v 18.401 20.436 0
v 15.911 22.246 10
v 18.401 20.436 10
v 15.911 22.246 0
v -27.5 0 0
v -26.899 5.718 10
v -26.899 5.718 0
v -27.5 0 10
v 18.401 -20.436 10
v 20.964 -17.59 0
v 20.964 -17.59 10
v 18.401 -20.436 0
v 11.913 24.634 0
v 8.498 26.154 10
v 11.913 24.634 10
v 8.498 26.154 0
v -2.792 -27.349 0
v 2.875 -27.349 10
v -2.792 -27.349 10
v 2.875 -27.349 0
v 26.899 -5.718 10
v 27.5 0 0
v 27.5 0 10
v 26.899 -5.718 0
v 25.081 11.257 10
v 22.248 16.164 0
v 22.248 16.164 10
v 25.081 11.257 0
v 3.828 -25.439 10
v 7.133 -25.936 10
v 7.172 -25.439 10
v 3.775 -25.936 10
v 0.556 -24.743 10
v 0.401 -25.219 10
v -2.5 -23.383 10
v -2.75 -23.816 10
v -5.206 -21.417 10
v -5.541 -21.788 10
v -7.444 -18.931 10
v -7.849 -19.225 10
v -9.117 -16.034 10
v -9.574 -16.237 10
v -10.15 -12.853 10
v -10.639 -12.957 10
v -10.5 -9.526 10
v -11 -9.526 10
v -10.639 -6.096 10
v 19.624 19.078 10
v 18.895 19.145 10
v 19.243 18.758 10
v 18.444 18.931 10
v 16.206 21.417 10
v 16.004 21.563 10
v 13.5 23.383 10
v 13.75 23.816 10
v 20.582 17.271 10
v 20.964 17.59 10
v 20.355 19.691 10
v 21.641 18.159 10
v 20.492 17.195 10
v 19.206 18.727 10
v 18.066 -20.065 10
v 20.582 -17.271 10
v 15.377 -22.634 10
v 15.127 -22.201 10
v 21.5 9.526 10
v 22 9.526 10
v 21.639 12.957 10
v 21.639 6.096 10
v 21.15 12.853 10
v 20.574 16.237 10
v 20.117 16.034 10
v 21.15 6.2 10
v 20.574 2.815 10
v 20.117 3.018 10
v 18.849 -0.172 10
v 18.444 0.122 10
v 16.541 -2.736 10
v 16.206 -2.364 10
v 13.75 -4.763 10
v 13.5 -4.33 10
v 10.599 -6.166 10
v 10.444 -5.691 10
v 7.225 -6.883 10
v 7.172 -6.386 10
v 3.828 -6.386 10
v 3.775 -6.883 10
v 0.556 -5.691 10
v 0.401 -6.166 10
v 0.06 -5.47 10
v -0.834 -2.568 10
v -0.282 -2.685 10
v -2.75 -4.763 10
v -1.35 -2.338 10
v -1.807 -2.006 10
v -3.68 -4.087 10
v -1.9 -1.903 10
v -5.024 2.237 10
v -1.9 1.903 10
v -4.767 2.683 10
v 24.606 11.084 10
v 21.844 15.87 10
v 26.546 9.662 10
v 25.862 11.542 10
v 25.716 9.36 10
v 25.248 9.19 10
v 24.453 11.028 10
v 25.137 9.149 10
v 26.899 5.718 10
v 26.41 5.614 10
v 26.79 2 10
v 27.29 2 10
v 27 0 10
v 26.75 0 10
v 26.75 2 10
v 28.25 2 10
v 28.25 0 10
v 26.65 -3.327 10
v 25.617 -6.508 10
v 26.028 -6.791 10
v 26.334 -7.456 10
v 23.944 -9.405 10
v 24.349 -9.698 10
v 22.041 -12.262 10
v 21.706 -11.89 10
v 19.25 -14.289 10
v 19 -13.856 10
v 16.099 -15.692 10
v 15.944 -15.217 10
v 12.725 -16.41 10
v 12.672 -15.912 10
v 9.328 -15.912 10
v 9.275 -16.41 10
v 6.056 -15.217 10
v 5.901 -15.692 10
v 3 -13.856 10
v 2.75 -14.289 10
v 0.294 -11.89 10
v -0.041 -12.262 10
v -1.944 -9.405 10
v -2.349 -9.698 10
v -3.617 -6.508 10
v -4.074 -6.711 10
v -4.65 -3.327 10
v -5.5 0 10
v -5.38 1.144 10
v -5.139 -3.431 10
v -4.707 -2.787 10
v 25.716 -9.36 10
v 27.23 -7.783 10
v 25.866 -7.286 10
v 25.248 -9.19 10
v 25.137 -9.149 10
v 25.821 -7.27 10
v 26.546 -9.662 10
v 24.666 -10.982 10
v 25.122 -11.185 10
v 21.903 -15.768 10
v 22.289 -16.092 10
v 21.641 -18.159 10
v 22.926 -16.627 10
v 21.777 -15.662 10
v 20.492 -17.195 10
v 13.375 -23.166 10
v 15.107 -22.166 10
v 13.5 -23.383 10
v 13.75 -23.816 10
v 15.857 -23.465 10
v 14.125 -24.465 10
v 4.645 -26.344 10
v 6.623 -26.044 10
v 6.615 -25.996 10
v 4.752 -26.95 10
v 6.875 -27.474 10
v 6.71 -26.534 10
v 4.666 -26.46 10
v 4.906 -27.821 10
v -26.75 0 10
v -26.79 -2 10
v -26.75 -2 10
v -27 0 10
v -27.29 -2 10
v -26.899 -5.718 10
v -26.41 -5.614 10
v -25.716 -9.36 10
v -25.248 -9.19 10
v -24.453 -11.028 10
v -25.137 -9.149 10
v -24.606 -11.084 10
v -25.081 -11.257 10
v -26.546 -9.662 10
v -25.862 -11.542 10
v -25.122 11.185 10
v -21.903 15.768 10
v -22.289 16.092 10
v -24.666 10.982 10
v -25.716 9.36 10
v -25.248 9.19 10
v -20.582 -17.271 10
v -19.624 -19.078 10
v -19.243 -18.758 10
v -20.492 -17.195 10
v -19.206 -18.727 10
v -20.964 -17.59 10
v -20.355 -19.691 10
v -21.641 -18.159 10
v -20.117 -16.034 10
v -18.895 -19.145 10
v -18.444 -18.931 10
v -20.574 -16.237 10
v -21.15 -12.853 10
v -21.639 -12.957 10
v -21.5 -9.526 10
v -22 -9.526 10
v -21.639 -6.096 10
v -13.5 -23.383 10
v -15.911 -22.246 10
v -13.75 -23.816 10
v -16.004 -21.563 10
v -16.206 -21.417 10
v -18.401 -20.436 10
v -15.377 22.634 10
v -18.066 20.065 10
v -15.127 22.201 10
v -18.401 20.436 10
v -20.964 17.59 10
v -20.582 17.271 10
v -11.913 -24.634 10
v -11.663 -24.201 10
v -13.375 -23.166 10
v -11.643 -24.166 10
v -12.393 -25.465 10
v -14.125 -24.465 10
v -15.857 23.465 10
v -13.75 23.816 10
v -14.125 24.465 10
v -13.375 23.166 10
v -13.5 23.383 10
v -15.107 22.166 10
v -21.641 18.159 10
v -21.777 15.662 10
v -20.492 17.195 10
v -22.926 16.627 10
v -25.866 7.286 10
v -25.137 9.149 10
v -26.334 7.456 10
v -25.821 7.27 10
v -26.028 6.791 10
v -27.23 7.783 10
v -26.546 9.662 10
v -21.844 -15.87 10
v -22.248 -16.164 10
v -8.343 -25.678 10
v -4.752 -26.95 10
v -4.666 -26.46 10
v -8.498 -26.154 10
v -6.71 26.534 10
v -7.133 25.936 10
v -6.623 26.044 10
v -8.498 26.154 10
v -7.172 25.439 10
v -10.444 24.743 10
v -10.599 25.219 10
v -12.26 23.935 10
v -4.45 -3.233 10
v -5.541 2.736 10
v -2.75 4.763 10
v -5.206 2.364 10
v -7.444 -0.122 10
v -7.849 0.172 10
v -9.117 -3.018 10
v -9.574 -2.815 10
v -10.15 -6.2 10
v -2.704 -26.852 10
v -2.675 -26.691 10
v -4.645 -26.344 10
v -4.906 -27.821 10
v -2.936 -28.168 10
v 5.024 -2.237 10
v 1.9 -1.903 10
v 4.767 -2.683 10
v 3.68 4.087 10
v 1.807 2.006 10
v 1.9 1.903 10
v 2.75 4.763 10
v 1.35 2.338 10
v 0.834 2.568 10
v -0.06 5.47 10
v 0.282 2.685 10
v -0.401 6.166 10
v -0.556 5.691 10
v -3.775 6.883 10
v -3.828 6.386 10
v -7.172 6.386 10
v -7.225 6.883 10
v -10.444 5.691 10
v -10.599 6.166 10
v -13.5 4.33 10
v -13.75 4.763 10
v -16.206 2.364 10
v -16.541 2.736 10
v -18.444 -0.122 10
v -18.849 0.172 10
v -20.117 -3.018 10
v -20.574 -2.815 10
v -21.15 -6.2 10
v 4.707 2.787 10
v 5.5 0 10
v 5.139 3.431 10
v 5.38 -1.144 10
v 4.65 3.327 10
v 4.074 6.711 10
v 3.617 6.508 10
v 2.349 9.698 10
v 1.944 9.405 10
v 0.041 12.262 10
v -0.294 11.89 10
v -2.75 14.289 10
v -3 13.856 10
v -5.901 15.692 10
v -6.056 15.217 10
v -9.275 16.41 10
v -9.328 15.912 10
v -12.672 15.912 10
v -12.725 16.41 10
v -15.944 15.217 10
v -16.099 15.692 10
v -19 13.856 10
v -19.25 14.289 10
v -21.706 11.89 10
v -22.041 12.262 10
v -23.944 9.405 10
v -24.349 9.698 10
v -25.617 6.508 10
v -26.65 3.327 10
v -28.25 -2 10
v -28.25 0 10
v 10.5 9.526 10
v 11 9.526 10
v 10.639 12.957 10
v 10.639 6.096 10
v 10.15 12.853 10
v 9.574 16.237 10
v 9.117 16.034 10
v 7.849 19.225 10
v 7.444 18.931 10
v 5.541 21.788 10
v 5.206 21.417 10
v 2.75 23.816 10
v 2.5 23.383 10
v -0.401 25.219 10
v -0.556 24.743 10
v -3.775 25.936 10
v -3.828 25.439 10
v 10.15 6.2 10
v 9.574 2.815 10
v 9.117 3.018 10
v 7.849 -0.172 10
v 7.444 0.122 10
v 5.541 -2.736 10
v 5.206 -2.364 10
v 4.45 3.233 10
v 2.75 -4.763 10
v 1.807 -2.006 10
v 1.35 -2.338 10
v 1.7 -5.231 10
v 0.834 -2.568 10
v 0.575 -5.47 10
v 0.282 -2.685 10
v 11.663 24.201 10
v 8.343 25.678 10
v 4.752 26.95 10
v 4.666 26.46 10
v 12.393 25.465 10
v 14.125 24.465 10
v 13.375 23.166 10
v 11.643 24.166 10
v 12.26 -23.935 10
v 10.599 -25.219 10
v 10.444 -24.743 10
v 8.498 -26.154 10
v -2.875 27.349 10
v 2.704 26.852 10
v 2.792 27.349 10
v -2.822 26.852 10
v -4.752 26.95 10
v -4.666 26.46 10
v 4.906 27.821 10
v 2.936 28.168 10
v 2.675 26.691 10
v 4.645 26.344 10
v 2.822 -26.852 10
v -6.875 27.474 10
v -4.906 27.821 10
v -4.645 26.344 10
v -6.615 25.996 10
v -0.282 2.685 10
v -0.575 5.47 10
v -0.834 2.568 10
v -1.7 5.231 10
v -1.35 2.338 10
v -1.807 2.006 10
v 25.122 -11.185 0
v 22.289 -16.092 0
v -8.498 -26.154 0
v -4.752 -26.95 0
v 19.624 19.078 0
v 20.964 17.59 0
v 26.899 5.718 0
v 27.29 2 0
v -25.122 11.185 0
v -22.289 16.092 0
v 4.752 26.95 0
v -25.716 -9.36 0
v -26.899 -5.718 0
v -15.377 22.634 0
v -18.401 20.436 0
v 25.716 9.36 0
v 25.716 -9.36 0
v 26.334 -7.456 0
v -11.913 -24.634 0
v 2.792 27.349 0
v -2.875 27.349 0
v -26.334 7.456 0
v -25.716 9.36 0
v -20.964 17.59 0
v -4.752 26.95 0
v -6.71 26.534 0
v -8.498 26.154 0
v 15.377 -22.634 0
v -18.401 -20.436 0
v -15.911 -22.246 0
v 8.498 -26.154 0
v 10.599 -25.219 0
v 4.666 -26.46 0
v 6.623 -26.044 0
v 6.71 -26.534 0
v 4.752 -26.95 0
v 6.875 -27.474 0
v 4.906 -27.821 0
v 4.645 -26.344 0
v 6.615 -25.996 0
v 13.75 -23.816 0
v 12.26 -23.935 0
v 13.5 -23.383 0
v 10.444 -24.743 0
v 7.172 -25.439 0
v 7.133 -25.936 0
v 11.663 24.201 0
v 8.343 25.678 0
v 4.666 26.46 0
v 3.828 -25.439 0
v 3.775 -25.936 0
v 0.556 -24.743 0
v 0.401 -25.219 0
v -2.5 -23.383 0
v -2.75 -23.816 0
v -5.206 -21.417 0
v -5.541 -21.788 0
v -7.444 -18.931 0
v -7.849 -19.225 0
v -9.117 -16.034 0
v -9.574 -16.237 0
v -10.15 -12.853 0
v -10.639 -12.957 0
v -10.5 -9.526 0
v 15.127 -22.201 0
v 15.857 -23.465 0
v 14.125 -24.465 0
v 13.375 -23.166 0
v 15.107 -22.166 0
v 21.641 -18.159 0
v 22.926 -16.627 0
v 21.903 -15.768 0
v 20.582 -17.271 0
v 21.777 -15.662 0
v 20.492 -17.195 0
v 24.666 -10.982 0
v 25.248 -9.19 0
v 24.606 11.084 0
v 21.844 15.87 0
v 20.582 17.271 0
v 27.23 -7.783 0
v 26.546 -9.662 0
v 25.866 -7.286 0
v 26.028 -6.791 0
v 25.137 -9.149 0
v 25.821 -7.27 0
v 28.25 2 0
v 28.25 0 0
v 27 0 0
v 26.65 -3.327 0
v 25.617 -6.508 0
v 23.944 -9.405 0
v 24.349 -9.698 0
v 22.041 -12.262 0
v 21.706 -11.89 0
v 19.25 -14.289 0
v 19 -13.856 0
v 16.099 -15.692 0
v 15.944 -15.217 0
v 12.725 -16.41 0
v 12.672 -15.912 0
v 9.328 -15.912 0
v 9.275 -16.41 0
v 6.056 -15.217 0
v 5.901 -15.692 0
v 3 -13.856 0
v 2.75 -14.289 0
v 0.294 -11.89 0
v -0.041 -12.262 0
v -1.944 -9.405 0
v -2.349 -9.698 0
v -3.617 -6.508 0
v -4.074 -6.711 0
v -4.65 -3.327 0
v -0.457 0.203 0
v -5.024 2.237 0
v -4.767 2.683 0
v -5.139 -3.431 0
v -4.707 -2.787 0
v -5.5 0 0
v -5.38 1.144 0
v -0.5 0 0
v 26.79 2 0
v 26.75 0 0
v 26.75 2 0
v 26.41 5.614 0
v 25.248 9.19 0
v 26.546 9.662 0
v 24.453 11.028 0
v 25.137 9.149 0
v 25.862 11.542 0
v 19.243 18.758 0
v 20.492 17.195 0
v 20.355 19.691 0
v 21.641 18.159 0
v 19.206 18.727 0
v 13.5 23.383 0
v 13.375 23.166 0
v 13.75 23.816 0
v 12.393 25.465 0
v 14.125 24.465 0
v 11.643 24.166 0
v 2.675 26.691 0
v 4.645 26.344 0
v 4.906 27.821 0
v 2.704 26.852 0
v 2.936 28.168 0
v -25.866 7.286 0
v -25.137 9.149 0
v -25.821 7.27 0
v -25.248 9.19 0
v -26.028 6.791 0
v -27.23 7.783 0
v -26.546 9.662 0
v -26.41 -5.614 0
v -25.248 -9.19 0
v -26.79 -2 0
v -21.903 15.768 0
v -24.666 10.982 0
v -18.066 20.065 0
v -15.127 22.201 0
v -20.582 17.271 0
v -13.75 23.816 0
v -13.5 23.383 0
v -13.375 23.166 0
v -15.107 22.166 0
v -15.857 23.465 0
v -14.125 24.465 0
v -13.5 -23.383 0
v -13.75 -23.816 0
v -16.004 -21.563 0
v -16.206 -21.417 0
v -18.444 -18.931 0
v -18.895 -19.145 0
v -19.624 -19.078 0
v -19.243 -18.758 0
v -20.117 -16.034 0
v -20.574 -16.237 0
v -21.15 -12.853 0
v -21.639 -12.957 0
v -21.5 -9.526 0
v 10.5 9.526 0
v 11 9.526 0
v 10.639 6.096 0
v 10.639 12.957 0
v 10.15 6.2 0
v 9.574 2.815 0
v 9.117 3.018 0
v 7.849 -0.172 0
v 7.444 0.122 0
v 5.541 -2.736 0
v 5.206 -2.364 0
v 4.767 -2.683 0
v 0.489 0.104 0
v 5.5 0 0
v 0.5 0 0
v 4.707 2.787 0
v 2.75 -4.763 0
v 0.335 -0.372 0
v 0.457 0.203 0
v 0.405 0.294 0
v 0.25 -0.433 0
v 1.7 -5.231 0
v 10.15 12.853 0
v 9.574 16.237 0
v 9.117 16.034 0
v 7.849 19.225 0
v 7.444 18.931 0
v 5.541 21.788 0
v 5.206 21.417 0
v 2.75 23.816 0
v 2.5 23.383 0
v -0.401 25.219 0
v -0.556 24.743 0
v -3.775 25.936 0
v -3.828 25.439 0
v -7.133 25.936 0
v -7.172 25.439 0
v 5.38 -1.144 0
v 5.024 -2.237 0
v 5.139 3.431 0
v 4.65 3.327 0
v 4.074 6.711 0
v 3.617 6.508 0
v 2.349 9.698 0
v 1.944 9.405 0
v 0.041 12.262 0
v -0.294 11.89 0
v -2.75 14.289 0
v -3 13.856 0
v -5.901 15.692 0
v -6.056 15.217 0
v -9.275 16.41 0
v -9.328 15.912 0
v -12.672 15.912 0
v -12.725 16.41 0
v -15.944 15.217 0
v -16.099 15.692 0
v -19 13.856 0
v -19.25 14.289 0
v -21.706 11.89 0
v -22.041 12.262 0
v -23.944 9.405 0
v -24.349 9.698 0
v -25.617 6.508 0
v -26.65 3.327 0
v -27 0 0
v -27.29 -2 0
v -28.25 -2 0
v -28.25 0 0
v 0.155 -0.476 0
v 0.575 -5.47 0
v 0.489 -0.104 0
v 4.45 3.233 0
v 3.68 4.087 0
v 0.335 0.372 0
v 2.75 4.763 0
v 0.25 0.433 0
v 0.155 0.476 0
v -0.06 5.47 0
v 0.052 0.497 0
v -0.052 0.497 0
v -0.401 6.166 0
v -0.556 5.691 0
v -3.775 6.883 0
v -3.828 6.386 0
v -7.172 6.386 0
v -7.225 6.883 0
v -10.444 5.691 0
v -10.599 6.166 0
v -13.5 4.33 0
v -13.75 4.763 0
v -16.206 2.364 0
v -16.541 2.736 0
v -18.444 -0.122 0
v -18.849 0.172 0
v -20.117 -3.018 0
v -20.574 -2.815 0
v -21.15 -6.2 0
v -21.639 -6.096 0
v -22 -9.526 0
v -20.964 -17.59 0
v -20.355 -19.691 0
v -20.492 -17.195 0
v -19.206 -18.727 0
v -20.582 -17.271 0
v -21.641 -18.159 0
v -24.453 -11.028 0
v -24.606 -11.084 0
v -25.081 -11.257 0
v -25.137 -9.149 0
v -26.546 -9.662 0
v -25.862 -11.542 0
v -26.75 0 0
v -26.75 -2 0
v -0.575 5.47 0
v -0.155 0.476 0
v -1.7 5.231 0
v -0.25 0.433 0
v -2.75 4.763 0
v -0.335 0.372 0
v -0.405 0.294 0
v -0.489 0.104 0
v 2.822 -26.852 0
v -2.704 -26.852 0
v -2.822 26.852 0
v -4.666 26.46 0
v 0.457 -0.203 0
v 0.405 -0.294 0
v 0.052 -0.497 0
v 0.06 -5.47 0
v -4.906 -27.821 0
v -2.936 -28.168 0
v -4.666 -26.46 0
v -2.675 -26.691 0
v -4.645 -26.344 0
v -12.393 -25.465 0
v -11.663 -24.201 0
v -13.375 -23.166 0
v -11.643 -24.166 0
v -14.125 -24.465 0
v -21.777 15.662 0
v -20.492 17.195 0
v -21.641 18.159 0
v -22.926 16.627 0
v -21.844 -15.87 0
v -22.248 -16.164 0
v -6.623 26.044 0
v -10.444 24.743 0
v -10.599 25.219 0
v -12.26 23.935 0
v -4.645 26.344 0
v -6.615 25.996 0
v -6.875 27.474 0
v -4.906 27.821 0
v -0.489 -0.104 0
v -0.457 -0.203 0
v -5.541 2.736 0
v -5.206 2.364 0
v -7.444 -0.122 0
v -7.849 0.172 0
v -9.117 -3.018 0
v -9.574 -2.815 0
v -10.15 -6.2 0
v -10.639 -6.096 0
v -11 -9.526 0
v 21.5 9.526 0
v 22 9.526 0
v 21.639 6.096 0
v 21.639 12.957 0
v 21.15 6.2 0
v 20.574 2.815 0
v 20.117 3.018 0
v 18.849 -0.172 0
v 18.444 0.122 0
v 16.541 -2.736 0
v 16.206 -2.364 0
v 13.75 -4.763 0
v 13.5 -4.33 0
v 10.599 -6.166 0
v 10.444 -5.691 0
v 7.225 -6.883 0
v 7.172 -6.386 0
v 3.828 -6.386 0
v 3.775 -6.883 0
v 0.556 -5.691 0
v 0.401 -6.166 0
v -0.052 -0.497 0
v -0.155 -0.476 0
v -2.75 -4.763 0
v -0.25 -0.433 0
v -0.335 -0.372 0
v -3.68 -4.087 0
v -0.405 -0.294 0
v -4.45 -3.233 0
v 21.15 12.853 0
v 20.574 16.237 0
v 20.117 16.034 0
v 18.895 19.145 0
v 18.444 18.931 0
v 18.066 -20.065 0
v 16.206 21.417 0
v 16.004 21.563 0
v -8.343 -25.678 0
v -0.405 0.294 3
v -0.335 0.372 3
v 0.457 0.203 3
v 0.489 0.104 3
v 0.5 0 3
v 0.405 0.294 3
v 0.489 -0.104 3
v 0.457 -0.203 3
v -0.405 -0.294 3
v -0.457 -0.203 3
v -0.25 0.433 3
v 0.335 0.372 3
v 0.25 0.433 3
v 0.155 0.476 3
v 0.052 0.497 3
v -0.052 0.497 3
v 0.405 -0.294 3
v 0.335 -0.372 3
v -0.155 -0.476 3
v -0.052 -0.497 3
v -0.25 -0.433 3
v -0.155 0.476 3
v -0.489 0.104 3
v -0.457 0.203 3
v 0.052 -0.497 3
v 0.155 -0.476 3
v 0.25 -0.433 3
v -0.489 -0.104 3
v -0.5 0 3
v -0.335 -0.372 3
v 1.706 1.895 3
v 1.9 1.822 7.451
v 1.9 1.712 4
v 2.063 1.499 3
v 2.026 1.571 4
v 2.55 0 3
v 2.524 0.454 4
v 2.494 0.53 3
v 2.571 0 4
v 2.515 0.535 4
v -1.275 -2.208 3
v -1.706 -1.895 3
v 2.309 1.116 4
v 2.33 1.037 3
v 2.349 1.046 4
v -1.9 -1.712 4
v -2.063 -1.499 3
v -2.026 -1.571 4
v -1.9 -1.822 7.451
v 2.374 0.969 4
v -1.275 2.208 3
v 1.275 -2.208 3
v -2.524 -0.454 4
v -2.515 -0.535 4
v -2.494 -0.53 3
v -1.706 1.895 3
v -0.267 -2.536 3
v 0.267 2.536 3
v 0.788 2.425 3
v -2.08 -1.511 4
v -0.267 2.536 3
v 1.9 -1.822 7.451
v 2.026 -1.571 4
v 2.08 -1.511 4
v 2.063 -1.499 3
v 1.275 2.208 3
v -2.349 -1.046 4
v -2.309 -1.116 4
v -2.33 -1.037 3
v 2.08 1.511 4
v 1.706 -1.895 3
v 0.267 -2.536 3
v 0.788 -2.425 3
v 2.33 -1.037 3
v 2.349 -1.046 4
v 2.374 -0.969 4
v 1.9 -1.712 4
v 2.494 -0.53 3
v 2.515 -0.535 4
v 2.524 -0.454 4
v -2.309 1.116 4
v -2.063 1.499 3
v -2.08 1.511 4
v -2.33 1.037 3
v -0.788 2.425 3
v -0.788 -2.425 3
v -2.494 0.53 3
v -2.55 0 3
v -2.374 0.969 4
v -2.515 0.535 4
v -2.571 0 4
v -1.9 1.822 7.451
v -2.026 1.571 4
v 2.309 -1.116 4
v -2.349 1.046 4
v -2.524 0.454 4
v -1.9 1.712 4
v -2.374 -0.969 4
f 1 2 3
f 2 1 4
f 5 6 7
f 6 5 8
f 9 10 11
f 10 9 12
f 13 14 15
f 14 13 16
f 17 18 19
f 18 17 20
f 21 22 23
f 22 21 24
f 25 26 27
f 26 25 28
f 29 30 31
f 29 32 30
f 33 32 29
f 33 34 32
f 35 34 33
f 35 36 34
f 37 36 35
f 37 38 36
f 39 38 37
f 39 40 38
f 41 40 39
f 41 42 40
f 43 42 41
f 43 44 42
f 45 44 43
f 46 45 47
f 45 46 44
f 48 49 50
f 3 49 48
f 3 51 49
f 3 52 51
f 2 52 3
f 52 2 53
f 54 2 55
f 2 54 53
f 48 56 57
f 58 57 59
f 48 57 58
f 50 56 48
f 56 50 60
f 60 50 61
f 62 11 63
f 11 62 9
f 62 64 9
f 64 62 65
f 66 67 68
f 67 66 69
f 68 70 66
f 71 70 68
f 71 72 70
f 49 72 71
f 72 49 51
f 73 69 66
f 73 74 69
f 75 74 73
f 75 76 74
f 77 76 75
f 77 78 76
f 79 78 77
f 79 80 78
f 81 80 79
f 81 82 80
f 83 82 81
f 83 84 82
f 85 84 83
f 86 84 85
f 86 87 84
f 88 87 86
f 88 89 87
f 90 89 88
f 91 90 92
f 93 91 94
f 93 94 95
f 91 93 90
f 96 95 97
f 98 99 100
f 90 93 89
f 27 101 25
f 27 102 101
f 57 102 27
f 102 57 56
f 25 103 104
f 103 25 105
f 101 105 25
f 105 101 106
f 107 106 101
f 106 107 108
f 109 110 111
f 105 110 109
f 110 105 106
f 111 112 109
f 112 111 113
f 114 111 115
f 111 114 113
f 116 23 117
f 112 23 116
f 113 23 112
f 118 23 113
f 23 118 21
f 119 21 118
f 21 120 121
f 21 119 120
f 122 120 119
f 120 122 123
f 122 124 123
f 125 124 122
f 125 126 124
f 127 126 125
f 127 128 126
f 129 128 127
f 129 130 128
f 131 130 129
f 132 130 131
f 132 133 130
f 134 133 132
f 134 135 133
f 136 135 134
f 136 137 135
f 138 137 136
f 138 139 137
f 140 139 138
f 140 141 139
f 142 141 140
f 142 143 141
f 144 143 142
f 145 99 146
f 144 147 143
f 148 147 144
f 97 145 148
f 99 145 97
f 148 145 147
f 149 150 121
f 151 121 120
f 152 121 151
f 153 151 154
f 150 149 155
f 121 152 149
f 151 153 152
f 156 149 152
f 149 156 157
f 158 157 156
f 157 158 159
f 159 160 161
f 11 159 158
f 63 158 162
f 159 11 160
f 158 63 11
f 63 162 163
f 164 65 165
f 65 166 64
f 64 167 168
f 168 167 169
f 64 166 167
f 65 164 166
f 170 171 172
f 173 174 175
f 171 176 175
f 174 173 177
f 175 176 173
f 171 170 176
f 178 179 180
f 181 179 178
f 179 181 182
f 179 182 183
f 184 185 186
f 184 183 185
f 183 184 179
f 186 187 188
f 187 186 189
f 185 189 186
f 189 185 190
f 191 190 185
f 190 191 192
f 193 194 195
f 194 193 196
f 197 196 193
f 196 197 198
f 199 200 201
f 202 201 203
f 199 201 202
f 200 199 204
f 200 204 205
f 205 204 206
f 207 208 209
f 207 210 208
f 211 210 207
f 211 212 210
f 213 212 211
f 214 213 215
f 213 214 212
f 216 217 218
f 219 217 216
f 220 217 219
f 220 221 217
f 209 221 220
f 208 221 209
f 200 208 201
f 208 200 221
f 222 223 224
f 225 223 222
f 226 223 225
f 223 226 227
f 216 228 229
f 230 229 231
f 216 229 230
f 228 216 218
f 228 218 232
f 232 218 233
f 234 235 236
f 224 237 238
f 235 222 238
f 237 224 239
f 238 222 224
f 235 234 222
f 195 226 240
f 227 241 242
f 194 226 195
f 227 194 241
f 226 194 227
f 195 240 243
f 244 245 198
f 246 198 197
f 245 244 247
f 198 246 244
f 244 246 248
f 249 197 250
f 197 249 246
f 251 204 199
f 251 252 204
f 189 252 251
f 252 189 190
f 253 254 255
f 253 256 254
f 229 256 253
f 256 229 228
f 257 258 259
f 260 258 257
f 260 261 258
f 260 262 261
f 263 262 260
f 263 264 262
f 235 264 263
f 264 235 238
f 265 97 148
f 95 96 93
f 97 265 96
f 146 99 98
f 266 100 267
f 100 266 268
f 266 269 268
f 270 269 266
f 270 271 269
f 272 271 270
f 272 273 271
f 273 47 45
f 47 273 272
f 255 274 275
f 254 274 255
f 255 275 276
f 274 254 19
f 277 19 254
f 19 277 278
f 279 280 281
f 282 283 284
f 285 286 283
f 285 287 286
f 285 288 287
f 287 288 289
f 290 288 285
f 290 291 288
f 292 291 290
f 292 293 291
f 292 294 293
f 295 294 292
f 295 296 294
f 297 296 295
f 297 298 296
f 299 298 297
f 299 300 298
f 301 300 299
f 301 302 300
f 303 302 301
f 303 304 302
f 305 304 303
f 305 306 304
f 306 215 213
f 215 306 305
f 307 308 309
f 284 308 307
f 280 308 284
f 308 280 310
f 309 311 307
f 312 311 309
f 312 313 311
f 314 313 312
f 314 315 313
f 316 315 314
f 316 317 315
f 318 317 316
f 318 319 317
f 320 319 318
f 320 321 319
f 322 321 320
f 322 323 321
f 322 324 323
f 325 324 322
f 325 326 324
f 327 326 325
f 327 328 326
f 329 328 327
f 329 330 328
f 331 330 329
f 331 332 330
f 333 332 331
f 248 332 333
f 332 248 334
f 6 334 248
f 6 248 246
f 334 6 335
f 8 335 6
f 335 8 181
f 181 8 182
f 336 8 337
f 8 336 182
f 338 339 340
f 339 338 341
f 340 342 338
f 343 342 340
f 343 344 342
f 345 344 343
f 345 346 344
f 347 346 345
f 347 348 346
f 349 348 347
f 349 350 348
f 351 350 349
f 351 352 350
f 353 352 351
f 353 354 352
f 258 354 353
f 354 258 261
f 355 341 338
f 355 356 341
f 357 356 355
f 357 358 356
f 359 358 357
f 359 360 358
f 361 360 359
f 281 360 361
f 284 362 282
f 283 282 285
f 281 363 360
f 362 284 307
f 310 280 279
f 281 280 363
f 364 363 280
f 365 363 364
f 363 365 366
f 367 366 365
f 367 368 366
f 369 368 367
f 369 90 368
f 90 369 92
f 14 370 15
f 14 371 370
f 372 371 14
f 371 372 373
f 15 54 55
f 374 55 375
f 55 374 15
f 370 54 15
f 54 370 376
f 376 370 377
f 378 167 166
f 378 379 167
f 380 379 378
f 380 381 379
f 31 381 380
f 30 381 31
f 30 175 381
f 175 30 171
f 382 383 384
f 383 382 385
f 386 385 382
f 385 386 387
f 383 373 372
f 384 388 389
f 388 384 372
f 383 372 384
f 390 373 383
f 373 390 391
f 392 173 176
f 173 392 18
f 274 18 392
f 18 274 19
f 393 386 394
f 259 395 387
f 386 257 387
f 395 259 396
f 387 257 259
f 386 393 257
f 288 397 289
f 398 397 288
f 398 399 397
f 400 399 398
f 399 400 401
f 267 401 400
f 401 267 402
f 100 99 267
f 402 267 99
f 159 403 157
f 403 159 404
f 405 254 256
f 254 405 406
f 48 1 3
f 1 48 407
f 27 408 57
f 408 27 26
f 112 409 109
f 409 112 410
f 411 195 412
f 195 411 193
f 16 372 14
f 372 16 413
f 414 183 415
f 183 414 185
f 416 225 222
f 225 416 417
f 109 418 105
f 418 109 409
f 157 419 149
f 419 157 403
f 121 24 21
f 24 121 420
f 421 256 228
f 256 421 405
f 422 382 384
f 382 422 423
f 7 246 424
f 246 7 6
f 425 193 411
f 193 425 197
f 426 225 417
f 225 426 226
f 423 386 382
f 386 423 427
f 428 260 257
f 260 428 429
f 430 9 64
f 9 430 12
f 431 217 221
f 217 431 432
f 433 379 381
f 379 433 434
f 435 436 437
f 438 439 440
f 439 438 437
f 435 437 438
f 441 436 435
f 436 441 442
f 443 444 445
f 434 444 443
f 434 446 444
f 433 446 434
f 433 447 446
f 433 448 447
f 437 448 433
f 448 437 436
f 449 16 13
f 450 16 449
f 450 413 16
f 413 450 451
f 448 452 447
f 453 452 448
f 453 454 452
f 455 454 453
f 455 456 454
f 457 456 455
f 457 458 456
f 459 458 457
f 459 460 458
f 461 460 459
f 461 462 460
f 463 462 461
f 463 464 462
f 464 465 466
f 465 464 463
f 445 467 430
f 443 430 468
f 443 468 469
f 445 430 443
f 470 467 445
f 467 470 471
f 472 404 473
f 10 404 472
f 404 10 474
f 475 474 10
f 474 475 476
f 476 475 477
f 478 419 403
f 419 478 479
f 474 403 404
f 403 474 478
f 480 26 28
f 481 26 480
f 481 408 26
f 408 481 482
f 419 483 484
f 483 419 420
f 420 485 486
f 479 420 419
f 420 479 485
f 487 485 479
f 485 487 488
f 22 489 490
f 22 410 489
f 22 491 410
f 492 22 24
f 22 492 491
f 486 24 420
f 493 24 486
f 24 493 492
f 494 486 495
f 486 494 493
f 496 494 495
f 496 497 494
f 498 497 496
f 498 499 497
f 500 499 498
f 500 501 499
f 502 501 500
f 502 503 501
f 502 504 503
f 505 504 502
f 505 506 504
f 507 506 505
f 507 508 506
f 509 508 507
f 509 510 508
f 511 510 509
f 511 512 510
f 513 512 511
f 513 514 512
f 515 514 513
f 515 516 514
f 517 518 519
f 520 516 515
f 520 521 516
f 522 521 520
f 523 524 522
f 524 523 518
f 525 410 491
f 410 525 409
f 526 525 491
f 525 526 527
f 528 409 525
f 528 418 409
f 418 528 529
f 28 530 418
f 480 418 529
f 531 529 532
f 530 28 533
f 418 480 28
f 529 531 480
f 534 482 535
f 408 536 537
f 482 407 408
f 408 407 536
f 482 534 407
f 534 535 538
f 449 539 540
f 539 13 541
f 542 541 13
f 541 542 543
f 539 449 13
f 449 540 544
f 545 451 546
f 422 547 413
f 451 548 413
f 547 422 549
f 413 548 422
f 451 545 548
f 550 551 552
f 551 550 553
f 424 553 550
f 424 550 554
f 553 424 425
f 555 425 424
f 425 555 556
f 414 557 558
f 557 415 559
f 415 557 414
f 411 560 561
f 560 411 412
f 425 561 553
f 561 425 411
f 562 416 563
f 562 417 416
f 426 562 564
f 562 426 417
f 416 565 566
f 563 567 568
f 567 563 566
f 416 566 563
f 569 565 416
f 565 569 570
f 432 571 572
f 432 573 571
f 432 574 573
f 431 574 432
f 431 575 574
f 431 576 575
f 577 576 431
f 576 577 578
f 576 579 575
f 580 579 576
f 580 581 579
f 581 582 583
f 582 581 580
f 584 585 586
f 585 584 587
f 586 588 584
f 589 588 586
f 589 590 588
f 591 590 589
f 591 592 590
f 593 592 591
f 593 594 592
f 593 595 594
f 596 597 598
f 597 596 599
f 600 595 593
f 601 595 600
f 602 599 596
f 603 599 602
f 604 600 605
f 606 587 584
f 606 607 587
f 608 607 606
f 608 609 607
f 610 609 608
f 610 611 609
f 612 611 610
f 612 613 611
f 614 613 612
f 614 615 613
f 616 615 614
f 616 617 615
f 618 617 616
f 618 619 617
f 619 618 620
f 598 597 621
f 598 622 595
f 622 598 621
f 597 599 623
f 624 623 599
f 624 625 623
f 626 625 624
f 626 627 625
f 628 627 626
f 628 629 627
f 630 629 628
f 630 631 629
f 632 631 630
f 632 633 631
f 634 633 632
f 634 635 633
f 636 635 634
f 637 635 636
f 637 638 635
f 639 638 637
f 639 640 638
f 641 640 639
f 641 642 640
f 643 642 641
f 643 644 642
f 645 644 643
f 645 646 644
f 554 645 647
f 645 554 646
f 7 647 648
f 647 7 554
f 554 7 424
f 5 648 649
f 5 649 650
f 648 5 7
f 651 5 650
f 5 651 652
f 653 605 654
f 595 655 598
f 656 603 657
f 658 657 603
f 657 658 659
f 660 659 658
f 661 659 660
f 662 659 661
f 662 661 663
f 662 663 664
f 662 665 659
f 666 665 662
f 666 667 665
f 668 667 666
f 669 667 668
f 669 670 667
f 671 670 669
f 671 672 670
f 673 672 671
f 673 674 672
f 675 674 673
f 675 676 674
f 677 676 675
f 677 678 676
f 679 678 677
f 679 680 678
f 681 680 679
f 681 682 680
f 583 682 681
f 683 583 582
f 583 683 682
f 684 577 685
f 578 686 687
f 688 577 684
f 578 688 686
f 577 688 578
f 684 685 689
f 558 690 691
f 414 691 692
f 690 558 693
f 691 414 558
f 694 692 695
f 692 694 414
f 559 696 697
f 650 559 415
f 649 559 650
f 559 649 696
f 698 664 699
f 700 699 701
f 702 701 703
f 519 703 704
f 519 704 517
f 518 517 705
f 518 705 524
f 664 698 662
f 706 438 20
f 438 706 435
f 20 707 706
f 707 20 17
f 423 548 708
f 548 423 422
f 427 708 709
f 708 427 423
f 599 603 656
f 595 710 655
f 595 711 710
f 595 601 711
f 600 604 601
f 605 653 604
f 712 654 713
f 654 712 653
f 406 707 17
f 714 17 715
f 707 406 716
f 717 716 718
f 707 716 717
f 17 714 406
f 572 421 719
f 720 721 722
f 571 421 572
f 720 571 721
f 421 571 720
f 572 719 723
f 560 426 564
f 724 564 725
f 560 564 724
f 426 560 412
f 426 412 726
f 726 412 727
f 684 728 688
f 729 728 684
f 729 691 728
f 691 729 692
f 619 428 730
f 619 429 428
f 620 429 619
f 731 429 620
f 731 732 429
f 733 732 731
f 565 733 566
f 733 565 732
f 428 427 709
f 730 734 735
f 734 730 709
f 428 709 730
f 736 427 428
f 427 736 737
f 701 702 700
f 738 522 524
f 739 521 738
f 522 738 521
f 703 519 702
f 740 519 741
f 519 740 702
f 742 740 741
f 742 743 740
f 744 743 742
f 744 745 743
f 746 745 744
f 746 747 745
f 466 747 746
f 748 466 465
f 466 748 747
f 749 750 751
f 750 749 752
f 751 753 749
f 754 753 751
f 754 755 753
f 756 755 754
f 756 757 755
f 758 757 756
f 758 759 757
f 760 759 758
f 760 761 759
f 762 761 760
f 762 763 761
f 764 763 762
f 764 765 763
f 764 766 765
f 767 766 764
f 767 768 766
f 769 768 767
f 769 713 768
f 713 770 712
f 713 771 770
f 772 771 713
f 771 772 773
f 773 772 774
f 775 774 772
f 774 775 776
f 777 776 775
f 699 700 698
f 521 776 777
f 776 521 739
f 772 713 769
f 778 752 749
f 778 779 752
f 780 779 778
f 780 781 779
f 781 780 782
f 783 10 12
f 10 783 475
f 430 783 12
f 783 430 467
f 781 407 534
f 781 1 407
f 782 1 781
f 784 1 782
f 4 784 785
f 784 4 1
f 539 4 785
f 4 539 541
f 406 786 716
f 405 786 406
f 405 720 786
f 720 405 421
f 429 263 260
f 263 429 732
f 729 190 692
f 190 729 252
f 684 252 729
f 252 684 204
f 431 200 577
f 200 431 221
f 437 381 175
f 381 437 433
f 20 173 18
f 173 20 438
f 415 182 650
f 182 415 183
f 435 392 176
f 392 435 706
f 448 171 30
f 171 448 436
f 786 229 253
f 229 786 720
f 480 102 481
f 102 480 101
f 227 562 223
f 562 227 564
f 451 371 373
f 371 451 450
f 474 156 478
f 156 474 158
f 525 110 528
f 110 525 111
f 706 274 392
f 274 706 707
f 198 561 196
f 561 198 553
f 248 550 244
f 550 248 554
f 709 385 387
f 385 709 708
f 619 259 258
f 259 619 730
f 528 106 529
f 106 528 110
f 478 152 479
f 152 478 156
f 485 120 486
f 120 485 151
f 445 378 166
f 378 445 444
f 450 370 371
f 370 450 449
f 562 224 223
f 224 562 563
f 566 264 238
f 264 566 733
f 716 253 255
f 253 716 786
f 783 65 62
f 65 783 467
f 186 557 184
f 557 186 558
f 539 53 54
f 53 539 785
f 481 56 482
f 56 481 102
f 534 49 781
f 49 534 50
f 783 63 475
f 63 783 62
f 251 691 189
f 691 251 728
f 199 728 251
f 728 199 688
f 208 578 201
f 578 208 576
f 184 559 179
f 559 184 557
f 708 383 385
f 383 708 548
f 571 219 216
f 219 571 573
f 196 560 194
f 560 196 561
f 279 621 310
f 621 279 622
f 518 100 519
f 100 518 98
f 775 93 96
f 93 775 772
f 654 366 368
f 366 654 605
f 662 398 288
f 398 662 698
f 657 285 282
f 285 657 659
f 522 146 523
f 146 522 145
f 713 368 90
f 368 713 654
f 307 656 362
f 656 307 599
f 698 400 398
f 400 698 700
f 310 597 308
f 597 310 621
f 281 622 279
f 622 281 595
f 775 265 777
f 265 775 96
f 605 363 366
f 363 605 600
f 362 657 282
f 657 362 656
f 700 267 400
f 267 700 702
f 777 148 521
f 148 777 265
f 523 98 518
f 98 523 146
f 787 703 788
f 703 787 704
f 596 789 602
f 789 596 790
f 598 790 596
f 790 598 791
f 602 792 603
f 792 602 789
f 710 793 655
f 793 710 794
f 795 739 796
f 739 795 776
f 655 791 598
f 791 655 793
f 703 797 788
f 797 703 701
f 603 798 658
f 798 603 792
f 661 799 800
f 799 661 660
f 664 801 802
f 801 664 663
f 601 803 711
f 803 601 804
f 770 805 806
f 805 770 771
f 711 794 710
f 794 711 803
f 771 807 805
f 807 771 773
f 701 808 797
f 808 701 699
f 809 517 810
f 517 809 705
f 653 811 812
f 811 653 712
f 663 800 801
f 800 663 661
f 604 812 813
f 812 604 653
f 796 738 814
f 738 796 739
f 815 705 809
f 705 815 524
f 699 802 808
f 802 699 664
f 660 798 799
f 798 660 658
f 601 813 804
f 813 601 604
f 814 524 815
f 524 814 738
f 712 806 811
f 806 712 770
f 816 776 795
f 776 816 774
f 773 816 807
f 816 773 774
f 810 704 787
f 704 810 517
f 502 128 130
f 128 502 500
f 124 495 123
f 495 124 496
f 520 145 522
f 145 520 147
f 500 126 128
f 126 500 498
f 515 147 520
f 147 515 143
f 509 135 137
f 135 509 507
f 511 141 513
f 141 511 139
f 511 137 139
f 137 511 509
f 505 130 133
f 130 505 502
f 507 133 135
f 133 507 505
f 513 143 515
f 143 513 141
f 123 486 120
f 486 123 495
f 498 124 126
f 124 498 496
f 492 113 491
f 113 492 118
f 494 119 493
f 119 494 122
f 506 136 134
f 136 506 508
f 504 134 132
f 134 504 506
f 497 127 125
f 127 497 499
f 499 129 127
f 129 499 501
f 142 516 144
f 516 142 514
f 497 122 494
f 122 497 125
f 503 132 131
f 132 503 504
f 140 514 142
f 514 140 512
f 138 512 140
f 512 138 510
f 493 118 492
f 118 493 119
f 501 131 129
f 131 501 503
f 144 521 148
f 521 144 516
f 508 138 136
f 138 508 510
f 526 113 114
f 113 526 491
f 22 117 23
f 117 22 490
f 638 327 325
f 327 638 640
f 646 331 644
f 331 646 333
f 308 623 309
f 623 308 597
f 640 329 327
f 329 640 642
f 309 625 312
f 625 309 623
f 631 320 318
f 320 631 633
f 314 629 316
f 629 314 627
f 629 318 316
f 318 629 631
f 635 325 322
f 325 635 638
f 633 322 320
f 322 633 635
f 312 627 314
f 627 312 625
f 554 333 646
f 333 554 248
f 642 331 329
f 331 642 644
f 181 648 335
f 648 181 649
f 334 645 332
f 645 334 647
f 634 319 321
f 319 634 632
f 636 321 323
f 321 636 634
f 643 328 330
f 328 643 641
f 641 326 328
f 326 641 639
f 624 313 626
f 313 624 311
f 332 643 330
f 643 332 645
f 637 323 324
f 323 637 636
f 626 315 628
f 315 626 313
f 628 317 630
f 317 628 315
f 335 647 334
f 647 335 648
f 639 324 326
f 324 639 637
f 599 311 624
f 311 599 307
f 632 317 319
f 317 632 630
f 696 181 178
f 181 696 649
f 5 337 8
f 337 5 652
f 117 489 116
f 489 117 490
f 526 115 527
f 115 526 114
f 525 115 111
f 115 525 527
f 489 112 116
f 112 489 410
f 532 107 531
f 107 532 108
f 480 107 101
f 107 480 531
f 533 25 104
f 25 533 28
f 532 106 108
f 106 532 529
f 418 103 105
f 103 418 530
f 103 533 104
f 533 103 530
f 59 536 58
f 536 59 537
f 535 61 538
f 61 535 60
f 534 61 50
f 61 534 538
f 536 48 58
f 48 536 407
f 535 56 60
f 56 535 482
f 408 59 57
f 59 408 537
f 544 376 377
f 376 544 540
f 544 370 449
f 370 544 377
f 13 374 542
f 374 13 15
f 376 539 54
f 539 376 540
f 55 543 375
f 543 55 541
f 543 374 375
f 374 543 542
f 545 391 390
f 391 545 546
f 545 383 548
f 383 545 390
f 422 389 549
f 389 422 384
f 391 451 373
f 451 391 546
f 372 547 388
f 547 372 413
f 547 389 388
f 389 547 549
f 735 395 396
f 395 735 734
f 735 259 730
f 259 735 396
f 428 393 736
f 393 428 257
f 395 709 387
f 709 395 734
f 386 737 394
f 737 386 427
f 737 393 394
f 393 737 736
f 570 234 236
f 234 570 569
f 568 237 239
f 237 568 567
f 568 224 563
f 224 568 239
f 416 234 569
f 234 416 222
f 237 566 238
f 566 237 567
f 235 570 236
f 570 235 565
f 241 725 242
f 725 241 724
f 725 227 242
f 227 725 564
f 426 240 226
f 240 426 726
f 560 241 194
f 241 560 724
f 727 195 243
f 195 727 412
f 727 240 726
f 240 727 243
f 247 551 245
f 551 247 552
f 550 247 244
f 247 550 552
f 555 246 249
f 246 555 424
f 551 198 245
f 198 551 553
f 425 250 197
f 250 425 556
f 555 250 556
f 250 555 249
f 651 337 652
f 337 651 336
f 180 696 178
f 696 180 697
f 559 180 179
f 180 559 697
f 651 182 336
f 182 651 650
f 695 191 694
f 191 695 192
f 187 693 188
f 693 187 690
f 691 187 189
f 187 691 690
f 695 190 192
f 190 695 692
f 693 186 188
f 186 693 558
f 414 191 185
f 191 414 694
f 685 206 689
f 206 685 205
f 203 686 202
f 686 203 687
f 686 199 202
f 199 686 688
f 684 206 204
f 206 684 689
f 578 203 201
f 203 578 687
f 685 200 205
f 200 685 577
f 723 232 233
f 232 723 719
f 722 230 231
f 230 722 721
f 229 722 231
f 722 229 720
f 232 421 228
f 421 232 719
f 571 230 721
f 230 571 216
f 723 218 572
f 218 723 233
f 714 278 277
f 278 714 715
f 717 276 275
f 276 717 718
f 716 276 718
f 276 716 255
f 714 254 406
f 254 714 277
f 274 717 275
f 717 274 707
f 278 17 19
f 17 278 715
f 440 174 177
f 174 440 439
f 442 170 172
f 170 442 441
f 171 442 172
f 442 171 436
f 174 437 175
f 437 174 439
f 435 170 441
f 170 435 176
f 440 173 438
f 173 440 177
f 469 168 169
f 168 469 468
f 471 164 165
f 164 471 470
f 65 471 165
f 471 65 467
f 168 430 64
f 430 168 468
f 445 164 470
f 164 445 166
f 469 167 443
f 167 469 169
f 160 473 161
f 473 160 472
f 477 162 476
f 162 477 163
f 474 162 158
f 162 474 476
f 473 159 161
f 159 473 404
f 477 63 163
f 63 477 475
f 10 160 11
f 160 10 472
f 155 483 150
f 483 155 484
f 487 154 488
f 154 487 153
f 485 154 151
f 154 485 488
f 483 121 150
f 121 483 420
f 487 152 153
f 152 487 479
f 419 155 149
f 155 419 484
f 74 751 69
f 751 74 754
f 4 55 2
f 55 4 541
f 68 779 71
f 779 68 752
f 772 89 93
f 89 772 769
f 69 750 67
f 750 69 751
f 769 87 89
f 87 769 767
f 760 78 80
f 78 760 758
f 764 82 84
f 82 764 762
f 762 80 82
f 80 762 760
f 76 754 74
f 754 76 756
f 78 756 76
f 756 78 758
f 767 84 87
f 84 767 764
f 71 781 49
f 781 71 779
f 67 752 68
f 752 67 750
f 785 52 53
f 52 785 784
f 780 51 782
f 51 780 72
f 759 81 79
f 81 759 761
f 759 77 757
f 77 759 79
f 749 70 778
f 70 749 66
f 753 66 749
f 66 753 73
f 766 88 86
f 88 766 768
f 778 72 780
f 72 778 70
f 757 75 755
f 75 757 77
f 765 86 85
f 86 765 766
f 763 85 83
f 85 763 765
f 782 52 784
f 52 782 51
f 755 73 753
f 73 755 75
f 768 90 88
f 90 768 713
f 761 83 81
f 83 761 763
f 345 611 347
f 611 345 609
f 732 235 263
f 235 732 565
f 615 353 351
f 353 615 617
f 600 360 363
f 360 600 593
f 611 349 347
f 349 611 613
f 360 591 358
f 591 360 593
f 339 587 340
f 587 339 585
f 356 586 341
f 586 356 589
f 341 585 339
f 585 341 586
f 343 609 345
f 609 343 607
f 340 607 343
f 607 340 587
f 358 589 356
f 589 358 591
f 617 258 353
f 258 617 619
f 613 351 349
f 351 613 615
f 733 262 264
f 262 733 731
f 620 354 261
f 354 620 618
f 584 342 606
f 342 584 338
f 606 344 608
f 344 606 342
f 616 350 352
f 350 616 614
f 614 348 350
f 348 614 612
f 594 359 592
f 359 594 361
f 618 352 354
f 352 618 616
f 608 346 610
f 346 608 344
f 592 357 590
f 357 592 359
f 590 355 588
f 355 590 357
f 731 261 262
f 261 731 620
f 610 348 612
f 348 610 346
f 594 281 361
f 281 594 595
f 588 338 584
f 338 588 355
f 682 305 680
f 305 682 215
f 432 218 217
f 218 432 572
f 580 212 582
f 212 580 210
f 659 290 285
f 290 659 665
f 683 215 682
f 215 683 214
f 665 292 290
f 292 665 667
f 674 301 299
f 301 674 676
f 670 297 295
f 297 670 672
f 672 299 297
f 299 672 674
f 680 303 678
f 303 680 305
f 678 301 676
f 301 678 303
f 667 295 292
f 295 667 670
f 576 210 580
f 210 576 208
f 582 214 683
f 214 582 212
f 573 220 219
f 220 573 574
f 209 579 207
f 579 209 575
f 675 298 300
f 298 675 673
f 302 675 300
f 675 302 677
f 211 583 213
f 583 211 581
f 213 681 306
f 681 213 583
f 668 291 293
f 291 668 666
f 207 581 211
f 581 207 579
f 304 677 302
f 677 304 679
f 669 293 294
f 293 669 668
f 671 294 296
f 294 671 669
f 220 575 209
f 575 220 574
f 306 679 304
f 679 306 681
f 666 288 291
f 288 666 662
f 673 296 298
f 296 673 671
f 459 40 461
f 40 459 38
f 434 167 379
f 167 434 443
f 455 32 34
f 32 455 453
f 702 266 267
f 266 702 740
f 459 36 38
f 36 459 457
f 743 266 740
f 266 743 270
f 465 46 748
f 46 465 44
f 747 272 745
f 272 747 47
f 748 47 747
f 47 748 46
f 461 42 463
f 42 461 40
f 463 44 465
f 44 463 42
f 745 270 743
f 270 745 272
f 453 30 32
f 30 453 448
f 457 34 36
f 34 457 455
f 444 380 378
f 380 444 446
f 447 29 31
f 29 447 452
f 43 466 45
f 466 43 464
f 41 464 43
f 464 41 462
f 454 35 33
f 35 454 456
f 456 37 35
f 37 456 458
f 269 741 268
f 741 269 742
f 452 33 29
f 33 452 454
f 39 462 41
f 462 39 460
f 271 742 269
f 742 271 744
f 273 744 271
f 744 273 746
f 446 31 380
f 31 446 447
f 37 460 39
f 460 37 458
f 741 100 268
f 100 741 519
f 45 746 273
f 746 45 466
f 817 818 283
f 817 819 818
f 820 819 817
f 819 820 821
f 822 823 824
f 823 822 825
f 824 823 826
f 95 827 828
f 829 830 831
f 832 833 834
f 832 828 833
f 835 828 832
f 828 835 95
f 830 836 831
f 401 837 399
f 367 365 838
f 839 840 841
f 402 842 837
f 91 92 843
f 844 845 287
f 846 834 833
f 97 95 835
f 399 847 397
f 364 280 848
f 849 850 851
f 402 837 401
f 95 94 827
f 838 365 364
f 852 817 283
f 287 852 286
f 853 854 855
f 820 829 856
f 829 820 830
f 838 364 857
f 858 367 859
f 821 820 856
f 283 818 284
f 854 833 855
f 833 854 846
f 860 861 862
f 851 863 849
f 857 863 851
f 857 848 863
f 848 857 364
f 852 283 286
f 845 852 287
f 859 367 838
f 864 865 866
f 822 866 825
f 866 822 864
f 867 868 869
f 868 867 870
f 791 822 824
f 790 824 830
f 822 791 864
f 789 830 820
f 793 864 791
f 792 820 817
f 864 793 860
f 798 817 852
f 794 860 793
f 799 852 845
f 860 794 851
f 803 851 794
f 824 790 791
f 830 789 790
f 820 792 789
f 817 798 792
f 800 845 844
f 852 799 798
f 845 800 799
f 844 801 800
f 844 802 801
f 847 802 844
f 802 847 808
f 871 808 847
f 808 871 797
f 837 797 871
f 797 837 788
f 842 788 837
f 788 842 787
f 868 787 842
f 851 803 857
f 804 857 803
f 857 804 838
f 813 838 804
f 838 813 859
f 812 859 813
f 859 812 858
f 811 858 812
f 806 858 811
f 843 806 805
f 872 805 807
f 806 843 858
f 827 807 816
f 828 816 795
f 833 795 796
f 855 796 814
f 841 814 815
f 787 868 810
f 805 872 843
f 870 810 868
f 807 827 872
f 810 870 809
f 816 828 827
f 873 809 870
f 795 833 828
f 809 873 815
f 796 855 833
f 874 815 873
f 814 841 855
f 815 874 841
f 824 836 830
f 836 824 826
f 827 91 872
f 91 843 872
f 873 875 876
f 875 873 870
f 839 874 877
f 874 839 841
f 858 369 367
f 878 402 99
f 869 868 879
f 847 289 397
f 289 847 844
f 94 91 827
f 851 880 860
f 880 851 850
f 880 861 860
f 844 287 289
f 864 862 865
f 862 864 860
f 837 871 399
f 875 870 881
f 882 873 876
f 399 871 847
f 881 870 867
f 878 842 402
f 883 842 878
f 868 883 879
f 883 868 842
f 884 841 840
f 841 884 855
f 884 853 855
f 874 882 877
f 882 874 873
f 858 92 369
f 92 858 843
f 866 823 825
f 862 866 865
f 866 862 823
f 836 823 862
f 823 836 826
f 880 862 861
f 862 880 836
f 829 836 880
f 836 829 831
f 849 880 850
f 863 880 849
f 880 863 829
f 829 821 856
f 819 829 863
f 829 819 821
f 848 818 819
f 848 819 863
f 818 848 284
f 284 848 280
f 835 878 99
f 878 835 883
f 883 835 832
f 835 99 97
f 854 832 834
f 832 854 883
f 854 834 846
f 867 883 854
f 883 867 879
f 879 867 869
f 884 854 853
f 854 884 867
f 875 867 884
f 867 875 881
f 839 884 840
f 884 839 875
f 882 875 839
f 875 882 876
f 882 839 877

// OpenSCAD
/*   	Parametric airless tire
		by Travis Howse <tjhowse@gmail.com>
		2012.   License, GPL v2 or later
**************************************************/
// https://www.thingiverse.com/thing:17514/files
dia_in = 1;
dia_out = 55;
spoke_count = 6;
spoke_thickness = 0.5;
tread_thickness = 0.5;
hub_thickness = 5;
height = 10;
$fn = 30;
spoke_dia = (dia_in/2) + hub_thickness + (dia_out/2) - tread_thickness+spoke_thickness;
grip_density = 0.05; // Set to 0 for no grip.
grip_height = 1.5;
grip_depth = 2;
pi = 3.14159;
zff = 0.001;

print_wheel = true;
print_washer = false;

//Set to 1 for a double spiral.
// Note: single-wall spokes probably won't work with double spirals, as the
// first layer of the upper spiral would bridge in a straight line, rather
// than a curve. Successive layers probably wouldn't recover.
double_spiral = 0;

module wheel()
{
	difference()
	{
		cylinder(r=dia_out/2,h=height);
		cylinder(r=(dia_out/2)-tread_thickness,h=height);	
	}

	difference()
	{
		cylinder(r=(dia_in/2)+hub_thickness,h=height);
		cylinder(r=dia_in/2,h=height);	
	}

	for (i = [0:spoke_count-1])
	{
		if (double_spiral)
		{
			rotate([0,0,i * (360/spoke_count)]) translate([(spoke_dia/2)-(dia_in/2)-hub_thickness,0,(height/2)+zff]) spoke();
			rotate([180,0,i * (360/spoke_count)]) translate([(spoke_dia/2)-(dia_in/2)-hub_thickness,0,-height/2]) spoke();			
		} else {
			rotate([0,0,i * (360/spoke_count)]) translate([(spoke_dia/2)-(dia_in/2)-hub_thickness,0,0]) spoke();
		}
	}
	
	if (grip_density != 0)
	{
		for (i = [0:(360*grip_density)])
		{
			rotate([0,0,i*(360/(360*grip_density))]) translate([dia_out/2-grip_height/2,0,0]) cube([grip_height,grip_depth,height]);
		}
	}
}

module spoke()
{
	intersection()
	{
		difference()
		{
			cylinder(r=spoke_dia/2,h=height);
			cylinder(r=(spoke_dia/2)-spoke_thickness,h=height);	
		}
		if (double_spiral)
		{
			translate([-spoke_dia/2,-spoke_dia,0]) cube([spoke_dia,spoke_dia,height/2]);
		} else {
			translate([-spoke_dia/2,-spoke_dia,0]) cube([spoke_dia,spoke_dia,height]);
		}
	}
}
if (print_wheel) {
    mirror([0,0,1]) {
        translate([0,0,-height]) {
            difference() {
                wheel();
                //cylinder(h=10, r=4 , center=false);
                cylinder(h=7, r1=2.7, r2=2.55 , center=false);
            }

            translate([1.9,-3,0])
                cube([2,6,6]);

            translate([-1.9-2,-3,0])
                cube([2,6,6]);
            
        }
    }
}

//Washer
if (print_washer) {
    translate([0,dia_out/2 + 15,0]) {
        
        difference() {
            // Center of the wheel
            cylinder(h=4, r1=hub_thickness, r2=hub_thickness, center=false);
            cylinder(h=4, r=2.7, center=false);
        }

    }    
}
